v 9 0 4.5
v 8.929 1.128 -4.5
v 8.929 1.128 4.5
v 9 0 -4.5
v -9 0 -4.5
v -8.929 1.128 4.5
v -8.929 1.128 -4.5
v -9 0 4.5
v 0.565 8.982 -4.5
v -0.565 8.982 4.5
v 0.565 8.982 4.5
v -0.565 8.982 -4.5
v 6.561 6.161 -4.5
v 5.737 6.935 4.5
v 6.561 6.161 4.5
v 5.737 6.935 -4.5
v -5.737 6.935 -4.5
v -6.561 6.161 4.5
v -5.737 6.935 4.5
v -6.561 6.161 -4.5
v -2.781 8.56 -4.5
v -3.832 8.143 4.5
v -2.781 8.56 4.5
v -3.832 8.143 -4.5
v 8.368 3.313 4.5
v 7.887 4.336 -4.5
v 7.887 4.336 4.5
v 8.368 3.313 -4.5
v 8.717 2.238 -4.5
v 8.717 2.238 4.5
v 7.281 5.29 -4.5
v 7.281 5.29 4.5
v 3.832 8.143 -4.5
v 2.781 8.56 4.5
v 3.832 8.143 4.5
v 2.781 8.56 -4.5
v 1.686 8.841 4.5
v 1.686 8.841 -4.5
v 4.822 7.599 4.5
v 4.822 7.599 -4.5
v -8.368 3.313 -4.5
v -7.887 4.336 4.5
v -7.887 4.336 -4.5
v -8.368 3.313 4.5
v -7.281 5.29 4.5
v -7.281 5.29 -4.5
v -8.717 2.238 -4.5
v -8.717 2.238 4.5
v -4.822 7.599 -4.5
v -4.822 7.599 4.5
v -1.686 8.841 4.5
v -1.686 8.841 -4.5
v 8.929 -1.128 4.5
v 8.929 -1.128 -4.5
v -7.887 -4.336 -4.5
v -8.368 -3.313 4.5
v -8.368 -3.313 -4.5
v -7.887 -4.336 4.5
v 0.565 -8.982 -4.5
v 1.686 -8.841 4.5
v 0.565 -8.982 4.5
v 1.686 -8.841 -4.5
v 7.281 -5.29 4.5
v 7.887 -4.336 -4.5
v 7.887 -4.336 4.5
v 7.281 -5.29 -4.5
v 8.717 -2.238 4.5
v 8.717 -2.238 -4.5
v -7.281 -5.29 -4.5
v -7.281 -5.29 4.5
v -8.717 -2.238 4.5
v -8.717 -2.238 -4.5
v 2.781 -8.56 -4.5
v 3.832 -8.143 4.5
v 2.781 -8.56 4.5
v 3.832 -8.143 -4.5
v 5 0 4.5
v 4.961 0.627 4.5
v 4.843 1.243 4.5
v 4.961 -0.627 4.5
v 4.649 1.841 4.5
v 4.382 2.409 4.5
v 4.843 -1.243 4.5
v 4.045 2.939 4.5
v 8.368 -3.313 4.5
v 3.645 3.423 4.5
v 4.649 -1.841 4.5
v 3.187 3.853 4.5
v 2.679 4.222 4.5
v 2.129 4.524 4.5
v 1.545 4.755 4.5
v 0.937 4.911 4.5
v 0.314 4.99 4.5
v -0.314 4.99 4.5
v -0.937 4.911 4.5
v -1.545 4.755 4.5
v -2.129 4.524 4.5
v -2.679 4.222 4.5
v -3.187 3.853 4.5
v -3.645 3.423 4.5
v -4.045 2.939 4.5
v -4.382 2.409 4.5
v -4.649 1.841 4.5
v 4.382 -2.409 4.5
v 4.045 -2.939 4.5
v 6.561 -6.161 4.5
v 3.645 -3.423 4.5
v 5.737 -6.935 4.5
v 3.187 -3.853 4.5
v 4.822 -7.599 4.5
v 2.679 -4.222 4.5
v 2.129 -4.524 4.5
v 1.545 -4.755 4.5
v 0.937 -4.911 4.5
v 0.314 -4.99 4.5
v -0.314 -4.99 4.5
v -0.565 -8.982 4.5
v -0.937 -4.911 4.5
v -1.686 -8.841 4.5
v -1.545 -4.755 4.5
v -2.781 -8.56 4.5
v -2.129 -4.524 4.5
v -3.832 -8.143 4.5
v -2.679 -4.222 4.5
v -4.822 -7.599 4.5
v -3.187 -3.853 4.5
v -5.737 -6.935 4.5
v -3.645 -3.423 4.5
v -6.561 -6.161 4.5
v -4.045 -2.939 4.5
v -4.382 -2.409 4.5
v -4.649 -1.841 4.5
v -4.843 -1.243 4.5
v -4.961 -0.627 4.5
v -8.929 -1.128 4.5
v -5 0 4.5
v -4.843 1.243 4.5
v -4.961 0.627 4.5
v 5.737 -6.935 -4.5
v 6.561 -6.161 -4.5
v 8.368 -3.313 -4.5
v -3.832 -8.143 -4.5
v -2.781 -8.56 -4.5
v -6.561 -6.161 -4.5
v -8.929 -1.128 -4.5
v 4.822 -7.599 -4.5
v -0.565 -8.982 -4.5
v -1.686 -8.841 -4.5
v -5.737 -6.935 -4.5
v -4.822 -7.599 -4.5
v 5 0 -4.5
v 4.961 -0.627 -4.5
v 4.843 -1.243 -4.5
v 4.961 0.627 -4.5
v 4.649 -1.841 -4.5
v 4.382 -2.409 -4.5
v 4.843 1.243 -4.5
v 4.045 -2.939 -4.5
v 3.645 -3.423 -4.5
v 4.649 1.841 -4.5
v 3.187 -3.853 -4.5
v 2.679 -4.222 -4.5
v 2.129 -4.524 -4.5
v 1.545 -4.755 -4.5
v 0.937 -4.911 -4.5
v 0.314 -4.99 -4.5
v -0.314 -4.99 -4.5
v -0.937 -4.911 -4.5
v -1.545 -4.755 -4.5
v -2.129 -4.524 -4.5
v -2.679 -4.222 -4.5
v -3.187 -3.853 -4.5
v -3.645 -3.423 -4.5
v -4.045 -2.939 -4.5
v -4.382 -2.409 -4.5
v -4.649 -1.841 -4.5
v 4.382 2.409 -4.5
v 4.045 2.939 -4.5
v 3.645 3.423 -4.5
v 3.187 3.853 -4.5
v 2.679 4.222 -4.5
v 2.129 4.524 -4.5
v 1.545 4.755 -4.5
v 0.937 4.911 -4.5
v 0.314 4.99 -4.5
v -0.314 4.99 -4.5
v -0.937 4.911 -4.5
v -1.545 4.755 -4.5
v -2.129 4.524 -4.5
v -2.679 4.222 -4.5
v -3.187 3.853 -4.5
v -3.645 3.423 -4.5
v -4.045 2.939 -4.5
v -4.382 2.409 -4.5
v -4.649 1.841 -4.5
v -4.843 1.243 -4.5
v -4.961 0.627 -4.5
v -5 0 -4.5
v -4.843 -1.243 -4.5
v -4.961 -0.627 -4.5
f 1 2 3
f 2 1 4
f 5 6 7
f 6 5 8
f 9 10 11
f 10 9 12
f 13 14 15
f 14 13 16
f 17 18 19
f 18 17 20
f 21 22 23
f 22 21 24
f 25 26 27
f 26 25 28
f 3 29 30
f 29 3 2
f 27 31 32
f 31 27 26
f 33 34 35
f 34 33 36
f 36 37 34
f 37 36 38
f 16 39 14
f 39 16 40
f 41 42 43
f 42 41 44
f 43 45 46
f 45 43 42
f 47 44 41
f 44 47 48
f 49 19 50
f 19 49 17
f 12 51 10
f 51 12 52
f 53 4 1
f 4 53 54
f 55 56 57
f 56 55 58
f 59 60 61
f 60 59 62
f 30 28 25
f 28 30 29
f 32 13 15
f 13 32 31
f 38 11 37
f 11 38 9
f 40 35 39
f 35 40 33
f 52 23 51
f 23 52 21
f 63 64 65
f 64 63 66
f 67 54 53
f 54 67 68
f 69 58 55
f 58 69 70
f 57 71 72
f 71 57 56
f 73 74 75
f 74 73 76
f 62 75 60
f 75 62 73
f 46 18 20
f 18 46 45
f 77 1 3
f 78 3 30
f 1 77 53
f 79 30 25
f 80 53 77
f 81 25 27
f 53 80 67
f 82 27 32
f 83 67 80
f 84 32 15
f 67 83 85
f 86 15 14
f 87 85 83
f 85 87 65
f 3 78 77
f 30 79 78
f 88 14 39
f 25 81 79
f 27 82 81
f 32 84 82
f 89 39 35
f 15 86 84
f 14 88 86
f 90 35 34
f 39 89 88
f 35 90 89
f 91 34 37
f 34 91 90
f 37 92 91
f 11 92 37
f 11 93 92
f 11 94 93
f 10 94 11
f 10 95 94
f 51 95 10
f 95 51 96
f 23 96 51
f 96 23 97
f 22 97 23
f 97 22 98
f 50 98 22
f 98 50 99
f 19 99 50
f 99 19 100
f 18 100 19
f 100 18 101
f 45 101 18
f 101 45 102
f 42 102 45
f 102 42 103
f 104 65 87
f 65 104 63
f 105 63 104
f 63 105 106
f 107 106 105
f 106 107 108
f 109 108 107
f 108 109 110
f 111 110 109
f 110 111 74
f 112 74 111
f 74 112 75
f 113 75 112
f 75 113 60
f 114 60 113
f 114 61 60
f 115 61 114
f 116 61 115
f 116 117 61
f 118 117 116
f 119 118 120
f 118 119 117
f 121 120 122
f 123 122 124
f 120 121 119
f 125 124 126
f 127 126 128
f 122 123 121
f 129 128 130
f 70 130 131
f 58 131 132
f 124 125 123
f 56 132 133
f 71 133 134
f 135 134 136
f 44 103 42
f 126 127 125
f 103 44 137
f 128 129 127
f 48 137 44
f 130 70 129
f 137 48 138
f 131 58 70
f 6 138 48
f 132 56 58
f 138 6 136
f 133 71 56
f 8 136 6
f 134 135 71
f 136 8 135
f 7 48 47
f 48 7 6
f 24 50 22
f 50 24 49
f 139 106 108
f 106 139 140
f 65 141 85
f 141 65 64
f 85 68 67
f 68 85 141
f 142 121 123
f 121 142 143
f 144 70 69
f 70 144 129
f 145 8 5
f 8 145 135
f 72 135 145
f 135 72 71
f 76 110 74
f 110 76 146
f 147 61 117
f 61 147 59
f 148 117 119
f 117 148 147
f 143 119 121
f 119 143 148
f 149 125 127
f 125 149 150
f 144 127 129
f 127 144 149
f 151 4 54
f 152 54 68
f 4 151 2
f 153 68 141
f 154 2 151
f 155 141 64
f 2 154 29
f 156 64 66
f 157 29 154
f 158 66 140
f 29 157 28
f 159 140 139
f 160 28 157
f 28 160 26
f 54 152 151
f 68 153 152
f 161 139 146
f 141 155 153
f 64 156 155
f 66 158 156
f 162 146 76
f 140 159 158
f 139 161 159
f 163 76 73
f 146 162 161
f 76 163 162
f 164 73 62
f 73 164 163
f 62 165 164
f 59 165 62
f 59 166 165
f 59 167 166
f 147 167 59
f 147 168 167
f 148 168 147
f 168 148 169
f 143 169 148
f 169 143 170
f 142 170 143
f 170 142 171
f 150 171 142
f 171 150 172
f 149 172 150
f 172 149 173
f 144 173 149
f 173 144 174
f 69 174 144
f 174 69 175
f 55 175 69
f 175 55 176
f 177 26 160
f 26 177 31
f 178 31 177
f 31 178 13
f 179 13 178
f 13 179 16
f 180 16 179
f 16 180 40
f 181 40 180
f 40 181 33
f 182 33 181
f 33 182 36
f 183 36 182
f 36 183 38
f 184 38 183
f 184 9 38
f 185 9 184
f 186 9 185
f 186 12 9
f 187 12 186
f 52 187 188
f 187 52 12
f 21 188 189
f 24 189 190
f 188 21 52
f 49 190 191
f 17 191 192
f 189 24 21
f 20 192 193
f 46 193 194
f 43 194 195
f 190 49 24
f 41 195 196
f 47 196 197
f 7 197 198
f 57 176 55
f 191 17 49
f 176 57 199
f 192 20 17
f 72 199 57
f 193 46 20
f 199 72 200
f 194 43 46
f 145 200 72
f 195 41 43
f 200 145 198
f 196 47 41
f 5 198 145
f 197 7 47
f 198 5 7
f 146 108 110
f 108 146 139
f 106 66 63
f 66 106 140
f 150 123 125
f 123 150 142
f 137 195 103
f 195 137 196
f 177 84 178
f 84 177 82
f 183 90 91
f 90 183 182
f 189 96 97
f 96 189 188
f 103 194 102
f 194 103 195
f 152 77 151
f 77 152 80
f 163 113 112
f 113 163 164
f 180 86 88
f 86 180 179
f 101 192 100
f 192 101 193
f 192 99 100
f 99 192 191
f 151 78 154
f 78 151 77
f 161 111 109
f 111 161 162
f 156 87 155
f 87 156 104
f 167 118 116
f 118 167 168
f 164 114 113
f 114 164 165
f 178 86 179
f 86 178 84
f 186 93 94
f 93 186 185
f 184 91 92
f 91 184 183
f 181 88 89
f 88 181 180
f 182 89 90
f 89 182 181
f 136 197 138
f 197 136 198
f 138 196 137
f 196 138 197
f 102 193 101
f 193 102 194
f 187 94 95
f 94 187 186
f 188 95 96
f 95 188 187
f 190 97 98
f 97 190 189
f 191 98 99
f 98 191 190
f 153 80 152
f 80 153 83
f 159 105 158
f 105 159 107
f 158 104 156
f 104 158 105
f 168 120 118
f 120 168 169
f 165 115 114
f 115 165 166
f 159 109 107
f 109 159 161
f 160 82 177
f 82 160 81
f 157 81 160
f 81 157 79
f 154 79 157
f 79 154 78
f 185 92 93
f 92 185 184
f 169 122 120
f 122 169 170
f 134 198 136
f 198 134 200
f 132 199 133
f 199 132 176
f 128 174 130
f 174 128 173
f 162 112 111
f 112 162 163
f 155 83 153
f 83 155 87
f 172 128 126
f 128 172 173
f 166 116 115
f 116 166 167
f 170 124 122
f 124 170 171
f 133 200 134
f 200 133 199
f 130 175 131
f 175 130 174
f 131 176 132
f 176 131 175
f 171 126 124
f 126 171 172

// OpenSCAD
$fn = 50;


difference() {
	union() {
		translate(v = [0, 0, -4.5000000000]) {
			cylinder(h = 9, r = 9.0000000000);
		}
	}
	union() {
		translate(v = [0, 0, -100.0000000000]) {
			cylinder(h = 200, r = 5.0000000000);
		}
	}
}
